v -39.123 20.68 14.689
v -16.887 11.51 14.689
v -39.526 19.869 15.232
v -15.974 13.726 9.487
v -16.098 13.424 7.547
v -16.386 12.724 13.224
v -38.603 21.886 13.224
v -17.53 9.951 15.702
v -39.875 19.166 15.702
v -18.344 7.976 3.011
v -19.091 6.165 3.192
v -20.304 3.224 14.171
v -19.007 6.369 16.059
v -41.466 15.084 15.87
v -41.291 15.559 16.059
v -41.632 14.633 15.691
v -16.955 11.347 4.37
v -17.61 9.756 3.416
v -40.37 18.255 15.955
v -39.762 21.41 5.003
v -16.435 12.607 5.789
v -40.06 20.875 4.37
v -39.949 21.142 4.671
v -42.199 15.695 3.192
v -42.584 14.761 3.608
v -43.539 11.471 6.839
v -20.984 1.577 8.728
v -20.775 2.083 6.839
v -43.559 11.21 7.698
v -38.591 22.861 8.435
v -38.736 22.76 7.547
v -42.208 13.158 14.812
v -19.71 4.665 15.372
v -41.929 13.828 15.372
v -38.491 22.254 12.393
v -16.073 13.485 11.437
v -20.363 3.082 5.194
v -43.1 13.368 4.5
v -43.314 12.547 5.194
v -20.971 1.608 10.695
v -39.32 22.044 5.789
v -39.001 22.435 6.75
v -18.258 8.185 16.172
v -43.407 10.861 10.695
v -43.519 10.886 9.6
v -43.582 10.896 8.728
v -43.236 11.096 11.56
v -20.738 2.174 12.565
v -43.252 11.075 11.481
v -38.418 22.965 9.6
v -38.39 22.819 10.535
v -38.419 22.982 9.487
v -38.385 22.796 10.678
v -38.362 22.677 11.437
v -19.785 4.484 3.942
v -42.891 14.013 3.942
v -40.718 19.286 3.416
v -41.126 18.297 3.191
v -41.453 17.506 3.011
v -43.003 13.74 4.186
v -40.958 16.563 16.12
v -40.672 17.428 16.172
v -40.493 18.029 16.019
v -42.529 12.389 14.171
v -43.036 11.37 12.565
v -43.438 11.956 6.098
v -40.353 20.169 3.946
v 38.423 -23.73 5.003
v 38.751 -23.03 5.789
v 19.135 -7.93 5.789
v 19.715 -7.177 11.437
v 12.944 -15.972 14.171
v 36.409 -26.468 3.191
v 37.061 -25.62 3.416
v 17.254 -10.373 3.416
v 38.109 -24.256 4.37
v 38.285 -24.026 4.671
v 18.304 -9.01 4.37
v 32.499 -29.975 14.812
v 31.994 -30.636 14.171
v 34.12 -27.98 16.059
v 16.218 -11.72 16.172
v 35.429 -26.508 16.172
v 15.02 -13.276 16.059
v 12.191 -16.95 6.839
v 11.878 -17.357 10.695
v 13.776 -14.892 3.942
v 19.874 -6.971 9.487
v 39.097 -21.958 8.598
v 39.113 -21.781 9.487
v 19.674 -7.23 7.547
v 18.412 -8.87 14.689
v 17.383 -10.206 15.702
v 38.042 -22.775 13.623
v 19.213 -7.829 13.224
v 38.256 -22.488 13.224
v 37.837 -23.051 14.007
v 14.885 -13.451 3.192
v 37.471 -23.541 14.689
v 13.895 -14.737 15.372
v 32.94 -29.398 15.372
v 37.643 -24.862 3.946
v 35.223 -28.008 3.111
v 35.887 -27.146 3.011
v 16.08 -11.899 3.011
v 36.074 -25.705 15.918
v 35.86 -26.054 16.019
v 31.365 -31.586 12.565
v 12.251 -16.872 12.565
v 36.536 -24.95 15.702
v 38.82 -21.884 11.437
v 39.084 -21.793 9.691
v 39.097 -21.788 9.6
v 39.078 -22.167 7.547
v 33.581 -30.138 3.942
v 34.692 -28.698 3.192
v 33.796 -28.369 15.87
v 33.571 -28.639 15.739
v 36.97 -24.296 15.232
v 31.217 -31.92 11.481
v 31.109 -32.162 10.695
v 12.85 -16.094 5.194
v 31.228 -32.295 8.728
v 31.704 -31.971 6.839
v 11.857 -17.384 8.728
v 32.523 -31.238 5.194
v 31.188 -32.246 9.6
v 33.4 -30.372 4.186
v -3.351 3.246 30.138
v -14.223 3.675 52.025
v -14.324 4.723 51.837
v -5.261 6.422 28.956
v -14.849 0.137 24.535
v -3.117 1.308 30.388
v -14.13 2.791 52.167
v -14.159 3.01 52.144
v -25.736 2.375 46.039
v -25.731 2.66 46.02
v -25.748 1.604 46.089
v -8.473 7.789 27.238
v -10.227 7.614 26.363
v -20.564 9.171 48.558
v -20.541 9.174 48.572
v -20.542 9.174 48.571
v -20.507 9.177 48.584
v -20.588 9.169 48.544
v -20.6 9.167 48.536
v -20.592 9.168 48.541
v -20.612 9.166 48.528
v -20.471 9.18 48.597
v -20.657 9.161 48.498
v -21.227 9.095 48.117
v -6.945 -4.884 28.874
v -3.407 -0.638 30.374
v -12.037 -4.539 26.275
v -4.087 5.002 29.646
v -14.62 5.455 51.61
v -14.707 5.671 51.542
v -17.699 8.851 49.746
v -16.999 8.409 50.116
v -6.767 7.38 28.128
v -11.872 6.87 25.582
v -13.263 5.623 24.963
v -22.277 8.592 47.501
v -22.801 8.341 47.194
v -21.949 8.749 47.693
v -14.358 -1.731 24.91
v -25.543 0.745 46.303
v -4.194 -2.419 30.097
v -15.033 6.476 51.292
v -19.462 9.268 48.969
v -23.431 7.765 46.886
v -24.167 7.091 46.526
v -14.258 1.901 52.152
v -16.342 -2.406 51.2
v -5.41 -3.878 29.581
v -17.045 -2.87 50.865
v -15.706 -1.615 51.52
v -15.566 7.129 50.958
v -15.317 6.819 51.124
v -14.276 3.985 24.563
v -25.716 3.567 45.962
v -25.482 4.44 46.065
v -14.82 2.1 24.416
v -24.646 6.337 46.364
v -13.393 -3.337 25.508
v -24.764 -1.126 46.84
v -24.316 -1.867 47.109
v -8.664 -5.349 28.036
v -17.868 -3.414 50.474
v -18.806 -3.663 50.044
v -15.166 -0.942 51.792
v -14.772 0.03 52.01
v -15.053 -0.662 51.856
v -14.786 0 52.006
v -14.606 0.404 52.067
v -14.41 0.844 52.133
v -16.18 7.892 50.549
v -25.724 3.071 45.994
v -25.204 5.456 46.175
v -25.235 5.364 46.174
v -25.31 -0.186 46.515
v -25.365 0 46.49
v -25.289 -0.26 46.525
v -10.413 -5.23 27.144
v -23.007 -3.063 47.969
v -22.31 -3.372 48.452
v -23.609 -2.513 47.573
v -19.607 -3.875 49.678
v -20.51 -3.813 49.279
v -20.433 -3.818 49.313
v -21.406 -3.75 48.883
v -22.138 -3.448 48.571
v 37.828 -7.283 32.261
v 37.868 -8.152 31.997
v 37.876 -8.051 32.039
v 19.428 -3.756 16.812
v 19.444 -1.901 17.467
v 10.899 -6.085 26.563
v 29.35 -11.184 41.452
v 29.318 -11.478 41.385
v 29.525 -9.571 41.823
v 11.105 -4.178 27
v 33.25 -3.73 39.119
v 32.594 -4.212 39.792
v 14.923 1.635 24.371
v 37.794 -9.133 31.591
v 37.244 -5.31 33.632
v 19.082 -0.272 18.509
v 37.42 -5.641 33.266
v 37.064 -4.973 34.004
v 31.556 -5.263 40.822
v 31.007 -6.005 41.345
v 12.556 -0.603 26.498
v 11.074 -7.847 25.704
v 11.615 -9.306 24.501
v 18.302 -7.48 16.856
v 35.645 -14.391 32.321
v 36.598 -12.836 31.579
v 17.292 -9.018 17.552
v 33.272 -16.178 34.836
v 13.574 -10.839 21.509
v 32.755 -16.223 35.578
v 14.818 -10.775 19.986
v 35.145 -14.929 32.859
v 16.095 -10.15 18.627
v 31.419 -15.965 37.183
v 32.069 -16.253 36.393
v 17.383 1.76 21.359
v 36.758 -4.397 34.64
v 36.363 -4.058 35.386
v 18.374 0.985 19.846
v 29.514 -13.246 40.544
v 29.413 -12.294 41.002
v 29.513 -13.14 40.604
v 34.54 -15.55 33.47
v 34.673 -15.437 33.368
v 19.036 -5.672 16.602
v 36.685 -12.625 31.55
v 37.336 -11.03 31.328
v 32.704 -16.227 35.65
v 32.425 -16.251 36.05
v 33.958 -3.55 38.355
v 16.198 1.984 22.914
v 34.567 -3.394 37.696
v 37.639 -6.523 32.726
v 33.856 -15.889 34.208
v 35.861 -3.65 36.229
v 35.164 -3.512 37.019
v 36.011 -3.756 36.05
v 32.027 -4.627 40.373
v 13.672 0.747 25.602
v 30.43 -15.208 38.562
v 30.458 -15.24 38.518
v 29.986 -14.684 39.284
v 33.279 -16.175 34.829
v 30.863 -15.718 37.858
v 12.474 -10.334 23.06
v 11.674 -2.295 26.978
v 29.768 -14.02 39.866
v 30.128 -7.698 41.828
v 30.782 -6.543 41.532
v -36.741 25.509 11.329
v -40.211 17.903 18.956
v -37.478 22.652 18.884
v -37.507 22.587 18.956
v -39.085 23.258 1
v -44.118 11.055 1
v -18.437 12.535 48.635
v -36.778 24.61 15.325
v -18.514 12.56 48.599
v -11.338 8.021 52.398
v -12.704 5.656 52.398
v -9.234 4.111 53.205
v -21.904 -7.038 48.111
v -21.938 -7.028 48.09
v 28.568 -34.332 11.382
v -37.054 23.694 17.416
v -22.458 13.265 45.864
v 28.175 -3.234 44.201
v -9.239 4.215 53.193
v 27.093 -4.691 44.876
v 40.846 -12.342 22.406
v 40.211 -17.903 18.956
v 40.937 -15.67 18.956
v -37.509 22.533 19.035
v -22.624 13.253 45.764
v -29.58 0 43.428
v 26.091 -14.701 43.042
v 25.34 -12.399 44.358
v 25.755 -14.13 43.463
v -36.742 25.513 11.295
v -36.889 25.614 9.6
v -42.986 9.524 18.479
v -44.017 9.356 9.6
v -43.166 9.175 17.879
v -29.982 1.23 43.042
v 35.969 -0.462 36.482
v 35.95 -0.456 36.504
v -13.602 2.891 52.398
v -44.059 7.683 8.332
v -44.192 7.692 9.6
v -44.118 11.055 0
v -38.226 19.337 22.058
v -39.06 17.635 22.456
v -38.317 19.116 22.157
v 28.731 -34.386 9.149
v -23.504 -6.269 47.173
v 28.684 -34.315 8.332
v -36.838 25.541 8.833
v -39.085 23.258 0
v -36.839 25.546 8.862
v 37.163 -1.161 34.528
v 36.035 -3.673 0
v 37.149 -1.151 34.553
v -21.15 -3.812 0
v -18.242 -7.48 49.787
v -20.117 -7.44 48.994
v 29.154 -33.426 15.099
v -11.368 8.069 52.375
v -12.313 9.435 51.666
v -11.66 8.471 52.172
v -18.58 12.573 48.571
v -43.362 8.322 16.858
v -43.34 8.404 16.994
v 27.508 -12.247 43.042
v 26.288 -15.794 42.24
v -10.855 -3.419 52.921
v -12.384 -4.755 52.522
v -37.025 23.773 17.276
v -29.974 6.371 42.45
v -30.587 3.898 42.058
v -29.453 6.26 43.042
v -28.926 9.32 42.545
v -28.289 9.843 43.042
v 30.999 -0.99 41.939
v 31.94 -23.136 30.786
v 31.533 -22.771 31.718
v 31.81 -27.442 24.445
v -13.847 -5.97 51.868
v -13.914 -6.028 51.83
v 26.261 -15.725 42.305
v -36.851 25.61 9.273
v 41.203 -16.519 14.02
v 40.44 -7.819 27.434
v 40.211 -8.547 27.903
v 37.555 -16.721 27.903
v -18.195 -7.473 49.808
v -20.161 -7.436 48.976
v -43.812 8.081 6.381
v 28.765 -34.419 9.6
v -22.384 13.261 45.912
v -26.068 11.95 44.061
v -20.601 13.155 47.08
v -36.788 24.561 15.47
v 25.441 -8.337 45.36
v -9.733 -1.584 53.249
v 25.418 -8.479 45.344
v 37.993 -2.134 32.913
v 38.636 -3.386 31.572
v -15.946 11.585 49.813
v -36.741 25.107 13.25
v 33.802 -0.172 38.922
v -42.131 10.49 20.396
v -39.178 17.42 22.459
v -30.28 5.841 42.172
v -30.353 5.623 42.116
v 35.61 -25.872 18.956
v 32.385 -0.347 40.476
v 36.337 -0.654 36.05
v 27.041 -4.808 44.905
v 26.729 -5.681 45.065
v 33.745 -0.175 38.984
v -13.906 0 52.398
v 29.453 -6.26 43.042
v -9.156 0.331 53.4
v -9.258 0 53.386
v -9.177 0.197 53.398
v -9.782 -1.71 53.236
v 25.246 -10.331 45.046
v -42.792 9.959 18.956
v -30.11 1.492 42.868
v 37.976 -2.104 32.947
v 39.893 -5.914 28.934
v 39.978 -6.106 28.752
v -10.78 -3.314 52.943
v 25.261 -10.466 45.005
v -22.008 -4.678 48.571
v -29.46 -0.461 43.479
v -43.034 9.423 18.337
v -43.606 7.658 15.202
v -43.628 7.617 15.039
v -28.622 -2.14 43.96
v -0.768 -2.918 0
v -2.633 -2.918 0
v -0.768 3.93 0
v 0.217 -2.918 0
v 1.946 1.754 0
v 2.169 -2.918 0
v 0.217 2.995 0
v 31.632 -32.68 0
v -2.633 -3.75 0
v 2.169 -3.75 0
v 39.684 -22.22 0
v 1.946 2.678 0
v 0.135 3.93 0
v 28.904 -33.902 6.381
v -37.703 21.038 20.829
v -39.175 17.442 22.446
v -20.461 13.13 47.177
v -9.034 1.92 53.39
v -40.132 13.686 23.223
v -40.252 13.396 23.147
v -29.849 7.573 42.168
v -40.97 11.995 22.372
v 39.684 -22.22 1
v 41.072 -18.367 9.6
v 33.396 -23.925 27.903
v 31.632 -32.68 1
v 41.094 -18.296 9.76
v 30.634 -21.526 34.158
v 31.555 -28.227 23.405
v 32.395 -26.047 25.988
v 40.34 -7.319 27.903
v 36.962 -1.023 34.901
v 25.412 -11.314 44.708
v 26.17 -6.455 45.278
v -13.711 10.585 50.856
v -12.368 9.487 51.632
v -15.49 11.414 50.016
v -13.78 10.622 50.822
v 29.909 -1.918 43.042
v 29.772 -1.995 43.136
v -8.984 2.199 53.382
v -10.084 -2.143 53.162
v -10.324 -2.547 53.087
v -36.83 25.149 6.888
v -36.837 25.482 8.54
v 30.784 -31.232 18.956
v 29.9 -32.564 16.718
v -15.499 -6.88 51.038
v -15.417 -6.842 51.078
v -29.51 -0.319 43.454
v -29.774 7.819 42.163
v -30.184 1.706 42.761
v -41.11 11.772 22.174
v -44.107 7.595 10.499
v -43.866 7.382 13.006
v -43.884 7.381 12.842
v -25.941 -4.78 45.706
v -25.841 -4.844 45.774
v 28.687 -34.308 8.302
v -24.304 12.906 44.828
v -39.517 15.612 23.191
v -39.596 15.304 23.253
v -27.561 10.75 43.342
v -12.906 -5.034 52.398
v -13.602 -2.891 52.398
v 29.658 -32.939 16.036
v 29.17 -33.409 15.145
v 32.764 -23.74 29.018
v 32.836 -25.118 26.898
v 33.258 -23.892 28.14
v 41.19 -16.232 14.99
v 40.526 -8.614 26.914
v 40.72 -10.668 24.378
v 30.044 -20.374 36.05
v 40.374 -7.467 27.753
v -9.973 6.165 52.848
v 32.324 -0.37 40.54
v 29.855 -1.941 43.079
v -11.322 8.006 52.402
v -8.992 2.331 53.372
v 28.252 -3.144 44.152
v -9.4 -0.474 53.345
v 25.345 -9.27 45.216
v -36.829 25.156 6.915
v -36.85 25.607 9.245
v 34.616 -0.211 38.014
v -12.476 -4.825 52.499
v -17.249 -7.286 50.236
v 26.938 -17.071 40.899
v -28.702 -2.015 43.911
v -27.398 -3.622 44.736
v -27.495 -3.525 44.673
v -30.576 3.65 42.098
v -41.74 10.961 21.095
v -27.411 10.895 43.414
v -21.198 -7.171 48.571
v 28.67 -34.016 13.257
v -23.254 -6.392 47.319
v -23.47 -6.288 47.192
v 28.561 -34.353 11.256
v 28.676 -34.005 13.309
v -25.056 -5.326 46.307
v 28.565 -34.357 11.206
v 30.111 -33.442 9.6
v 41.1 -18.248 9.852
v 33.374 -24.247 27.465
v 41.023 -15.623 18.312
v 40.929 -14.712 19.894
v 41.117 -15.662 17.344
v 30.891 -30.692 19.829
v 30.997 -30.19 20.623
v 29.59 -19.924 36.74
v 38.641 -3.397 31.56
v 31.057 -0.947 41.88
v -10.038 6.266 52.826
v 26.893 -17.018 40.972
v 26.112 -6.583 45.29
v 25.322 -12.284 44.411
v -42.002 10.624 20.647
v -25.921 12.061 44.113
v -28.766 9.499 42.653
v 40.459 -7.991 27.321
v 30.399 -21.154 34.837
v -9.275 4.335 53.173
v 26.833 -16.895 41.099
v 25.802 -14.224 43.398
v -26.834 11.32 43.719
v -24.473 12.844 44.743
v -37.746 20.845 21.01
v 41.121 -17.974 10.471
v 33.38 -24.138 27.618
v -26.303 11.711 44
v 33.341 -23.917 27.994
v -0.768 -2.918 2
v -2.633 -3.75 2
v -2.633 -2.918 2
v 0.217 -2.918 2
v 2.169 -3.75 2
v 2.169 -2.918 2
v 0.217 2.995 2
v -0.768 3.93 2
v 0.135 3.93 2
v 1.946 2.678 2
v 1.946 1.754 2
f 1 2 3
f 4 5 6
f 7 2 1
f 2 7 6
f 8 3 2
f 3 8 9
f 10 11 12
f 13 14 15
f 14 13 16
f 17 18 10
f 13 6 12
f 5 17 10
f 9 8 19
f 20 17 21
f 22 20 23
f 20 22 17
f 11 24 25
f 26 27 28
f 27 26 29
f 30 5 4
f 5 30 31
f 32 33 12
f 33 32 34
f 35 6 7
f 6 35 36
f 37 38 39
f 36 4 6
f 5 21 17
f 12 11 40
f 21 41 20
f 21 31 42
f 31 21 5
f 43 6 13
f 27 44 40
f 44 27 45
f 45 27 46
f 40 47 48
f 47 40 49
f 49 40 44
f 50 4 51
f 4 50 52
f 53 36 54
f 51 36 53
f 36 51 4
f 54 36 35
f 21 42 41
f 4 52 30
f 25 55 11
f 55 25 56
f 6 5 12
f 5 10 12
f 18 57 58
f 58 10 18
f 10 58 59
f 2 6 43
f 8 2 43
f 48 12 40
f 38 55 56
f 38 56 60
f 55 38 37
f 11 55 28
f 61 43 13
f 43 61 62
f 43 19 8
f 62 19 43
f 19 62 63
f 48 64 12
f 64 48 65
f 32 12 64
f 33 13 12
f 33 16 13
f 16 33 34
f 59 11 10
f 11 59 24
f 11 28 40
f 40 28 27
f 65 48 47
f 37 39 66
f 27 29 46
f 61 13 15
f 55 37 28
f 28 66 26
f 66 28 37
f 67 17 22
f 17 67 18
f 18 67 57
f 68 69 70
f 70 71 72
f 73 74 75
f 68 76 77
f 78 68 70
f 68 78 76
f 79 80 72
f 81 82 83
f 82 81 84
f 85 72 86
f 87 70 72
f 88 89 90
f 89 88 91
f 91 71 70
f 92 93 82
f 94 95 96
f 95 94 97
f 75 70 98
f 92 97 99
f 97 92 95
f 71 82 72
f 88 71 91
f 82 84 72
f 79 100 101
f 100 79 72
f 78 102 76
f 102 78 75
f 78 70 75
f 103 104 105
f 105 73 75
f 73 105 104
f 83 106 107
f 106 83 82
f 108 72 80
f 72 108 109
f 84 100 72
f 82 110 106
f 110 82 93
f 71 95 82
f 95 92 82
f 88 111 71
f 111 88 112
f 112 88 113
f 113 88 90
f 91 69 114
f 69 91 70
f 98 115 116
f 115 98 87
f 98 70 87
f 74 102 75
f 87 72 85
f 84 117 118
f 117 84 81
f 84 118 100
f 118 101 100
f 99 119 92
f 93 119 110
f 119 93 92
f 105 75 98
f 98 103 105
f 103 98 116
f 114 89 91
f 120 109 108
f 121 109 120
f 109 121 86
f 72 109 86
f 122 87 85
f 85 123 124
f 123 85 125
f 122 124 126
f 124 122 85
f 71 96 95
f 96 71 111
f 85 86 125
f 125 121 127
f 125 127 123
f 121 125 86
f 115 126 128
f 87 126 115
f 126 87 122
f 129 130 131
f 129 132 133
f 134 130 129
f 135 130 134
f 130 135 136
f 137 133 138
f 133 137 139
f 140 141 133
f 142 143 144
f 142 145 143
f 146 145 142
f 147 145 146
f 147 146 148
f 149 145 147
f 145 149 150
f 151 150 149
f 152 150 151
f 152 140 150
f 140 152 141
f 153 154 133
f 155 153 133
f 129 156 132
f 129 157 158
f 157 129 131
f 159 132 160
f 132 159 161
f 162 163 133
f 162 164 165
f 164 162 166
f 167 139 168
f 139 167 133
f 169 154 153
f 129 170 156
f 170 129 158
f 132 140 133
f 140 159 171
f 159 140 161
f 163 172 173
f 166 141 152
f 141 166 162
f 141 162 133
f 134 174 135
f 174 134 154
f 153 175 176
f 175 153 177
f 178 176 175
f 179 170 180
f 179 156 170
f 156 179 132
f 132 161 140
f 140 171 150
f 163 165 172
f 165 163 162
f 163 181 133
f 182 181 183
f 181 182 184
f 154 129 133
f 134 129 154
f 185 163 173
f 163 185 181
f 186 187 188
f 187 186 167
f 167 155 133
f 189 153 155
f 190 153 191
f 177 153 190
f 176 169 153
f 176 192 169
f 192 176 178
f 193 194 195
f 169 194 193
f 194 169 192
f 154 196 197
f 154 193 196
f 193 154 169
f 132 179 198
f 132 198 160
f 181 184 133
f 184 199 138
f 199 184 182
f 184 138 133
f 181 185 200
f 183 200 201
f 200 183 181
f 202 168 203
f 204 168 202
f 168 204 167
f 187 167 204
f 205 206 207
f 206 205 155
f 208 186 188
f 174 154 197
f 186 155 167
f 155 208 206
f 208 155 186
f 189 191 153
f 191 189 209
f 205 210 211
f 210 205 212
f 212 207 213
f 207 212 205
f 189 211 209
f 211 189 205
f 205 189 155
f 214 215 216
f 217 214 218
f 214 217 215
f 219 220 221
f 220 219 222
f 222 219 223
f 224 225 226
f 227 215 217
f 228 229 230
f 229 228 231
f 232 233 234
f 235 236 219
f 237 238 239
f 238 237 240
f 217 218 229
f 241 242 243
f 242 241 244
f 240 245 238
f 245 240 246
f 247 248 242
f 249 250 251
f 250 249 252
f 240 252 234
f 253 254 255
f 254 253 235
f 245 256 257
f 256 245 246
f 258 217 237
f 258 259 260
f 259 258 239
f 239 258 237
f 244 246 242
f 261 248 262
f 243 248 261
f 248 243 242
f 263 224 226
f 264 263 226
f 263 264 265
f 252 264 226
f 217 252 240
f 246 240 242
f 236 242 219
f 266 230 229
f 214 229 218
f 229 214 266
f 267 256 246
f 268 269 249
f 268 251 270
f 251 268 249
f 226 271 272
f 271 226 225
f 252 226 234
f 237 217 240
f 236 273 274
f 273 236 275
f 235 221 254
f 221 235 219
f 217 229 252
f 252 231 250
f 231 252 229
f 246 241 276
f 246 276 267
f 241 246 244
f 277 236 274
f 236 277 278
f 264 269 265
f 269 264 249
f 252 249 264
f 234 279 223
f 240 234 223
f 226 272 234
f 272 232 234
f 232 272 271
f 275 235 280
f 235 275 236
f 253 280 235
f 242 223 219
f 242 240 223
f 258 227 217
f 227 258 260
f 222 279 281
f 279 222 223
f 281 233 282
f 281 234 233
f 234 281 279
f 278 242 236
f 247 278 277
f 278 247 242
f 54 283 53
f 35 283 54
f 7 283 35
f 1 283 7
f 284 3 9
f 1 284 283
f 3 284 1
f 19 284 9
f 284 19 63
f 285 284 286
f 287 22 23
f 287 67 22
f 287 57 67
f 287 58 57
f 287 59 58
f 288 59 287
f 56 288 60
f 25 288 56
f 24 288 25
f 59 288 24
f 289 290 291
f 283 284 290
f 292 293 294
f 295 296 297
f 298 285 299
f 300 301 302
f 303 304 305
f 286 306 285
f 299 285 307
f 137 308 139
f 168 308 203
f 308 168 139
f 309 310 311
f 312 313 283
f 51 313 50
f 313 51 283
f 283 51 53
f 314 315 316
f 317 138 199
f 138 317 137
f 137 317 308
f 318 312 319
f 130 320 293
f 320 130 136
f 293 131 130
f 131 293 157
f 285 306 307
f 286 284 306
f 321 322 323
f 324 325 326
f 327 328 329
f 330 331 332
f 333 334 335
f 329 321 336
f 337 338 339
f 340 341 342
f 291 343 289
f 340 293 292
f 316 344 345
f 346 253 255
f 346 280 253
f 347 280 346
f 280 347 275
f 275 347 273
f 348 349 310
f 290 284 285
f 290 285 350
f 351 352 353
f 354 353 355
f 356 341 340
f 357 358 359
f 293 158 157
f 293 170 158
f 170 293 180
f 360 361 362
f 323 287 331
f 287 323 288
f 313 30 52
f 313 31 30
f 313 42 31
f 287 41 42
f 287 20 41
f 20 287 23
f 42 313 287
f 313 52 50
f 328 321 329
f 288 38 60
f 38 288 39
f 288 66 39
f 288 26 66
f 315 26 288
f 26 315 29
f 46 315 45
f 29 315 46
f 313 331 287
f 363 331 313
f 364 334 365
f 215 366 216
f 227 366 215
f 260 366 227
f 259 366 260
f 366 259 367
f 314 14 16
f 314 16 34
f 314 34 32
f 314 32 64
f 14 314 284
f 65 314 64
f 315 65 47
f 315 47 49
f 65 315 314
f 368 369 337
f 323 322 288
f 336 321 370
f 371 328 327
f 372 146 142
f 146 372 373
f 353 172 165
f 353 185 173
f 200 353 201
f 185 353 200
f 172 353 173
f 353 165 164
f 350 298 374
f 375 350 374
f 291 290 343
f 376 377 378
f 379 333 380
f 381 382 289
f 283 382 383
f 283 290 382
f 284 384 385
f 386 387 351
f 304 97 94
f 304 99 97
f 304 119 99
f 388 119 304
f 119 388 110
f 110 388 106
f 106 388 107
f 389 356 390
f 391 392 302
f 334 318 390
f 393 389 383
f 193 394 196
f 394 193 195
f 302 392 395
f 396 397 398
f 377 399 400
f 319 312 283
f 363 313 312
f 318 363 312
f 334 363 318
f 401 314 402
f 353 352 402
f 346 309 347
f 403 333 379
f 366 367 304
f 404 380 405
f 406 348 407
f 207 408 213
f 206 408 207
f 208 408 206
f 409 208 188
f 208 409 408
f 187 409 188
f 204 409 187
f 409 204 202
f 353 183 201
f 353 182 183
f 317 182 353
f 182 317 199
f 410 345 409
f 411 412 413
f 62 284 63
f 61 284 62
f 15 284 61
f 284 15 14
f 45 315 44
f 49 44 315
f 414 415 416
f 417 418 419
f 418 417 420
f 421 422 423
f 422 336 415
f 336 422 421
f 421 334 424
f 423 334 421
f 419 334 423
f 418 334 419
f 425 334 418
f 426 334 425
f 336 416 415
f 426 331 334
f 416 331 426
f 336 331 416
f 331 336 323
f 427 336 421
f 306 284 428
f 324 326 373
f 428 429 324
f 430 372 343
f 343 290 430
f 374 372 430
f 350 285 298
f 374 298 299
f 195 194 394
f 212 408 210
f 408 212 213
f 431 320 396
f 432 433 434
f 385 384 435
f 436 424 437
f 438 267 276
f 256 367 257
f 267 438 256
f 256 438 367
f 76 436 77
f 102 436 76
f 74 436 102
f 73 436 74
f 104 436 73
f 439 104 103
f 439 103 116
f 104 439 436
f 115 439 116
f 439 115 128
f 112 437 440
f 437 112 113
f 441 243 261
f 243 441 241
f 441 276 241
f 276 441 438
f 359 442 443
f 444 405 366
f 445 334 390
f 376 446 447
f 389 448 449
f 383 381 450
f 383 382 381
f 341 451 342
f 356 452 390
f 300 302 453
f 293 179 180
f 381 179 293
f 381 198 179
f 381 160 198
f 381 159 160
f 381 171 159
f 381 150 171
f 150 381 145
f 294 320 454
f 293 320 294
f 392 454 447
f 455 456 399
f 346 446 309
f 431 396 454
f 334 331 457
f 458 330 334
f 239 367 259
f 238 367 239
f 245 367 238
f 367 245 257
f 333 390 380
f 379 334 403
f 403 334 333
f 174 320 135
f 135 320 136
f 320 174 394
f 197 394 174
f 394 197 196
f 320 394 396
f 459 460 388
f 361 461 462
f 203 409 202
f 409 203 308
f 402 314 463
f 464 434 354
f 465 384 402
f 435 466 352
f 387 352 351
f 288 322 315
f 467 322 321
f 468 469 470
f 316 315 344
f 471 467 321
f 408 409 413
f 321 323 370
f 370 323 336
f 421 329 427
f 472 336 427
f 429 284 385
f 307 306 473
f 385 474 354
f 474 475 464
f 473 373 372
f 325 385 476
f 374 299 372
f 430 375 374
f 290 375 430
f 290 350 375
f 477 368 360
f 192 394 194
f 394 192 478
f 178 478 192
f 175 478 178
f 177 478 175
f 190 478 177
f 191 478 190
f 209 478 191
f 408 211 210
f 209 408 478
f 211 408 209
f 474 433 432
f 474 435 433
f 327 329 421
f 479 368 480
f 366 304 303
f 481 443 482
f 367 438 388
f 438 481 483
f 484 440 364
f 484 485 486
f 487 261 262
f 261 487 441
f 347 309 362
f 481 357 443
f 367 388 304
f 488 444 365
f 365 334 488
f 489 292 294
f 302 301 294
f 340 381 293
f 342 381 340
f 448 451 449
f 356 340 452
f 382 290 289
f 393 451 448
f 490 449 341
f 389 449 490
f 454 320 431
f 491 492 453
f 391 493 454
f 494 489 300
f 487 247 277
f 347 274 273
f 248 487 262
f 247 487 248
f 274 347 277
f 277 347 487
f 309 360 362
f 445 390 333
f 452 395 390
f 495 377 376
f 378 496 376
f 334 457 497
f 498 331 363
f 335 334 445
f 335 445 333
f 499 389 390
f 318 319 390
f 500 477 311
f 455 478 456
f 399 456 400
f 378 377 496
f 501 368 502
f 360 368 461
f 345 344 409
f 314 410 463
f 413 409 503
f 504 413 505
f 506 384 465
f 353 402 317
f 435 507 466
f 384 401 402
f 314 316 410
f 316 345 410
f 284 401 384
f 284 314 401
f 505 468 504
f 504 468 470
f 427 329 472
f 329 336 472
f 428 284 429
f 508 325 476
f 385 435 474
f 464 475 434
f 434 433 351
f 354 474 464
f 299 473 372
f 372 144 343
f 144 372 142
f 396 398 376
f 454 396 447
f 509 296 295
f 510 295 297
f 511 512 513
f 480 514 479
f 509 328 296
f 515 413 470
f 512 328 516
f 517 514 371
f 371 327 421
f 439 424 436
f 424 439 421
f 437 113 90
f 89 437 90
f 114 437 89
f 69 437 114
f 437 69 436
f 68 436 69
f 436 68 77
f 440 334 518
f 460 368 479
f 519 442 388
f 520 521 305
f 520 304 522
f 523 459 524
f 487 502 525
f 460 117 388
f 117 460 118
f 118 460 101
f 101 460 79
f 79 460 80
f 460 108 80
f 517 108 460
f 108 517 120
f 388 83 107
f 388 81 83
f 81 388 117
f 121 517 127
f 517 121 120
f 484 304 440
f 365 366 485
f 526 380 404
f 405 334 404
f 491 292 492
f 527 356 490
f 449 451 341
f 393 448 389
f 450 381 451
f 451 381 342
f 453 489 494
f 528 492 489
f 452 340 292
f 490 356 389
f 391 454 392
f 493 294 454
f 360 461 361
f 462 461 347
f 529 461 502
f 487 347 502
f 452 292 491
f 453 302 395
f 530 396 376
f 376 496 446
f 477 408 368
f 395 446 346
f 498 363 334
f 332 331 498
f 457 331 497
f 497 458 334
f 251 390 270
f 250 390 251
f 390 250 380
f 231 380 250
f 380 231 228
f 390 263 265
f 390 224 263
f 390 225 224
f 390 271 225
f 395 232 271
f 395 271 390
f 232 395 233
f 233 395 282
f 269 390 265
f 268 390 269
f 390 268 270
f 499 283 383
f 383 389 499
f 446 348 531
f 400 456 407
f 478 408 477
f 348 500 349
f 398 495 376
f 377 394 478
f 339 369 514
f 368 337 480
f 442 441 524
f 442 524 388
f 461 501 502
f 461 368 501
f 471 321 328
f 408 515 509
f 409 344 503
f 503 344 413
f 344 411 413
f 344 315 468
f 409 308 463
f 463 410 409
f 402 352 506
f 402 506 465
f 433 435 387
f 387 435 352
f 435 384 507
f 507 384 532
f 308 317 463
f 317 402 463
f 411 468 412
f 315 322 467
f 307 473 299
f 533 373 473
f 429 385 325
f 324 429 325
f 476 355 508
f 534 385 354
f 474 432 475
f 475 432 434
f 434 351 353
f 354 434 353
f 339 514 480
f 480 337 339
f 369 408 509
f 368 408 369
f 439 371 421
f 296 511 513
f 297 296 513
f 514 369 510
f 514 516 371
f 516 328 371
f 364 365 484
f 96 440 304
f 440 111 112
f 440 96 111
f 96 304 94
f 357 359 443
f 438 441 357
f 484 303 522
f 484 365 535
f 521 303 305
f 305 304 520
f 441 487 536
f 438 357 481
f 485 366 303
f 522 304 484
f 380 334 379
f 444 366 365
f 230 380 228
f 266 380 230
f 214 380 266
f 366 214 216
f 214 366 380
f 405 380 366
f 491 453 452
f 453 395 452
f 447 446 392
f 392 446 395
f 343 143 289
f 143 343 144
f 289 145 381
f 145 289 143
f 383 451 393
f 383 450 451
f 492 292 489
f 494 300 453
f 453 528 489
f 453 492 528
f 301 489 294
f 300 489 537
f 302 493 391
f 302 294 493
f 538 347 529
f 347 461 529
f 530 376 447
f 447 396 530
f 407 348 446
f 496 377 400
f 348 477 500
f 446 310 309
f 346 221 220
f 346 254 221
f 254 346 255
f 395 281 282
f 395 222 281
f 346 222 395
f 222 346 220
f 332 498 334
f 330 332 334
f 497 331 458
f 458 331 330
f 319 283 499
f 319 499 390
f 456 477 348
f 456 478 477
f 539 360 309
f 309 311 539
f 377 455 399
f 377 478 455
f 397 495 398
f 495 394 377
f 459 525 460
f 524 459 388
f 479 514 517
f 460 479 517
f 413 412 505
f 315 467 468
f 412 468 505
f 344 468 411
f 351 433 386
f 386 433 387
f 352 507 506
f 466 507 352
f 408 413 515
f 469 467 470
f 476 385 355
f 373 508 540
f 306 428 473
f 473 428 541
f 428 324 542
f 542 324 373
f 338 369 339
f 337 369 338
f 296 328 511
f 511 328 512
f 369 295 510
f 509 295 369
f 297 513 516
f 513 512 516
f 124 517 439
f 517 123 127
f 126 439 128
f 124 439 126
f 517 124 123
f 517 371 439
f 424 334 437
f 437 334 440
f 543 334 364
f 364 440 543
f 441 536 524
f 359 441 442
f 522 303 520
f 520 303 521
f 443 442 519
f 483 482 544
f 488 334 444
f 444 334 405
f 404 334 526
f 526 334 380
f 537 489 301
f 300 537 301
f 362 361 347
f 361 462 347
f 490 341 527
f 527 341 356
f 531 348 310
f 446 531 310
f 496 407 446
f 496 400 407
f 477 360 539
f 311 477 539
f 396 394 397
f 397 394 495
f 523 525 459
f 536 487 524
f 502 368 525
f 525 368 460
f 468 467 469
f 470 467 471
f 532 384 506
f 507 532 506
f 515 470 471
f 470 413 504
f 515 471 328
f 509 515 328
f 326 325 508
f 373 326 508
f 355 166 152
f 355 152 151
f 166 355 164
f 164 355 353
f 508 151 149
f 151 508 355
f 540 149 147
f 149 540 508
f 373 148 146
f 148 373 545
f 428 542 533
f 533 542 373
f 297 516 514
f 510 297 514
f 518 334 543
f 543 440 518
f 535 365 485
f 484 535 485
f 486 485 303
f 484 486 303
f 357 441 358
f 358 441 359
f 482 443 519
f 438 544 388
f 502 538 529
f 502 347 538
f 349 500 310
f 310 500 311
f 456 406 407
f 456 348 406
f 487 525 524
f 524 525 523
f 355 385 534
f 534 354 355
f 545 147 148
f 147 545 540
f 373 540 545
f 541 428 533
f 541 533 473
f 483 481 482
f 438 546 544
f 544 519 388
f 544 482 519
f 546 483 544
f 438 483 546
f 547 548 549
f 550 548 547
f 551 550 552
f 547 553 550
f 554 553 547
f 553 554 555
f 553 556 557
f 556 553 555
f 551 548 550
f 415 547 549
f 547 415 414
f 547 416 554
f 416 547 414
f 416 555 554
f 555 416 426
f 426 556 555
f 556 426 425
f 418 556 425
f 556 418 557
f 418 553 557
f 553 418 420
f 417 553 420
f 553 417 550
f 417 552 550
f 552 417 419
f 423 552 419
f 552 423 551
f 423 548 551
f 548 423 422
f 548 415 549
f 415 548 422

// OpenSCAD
difference() {
	difference() {
		difference() {
			hull() {
				union() {
					union() {
						rotate(a = 157.5890894690, v = [0, 0, 1]) {
							translate(v = [0, -6.6000000000, 0]) {
								cube(size = [45.0000000000, 13.2000000000, 1]);
							}
						}
						rotate(a = -37.5890894690, v = [0, 0, 1]) {
							translate(v = [0, -6.6000000000, 0]) {
								cube(size = [45.0000000000, 13.2000000000, 1]);
							}
						}
						rotate(a = 172.3322554907, v = [0, 0, 1]) {
							translate(v = [0, -6.6000000000, 0]) {
								cube(size = [20.4525262825, 13.2000000000, 1]);
							}
						}
						rotate(a = -16.3184846220, v = [0, 0, 1]) {
							translate(v = [0, -6.6000000000, 0]) {
								cube(size = [35.6153289547, 13.2000000000, 1]);
							}
						}
					}
					translate(v = [0, 0, 9.6000024435]) {
						intersection() {
							hull() {
								rotate(a = 90.0000342358, v = [-0.3812464258, -0.9244734516, 0.0000013057]) {
									cylinder(h = 45, r = 9.6000000000);
								}
								rotate(a = 89.9999885039, v = [0.6099942813, 0.7924058157, -0.0000014024]) {
									cylinder(h = 45, r = 9.6000000000);
								}
								rotate(a = 27.0328546714, v = [-0.0606423386, -0.4504375452, 0.0000005111]) {
									cylinder(h = 45, r = 9.6000000000);
								}
								rotate(a = 52.3213490325, v = [0.2223798319, 0.7595672672, -0.0000009819]) {
									cylinder(h = 45, r = 9.6000000000);
								}
							}
							sphere(r = 45);
						}
					}
				}
			}
			translate(v = [0, 0, 9.6000024435]) {
				rotate(a = 90.0000342358, v = [-0.3812464258, -0.9244734516, 0.0000013057]) {
					translate(v = [0, 0, 20]) {
						cylinder(h = 45, r = 6.6000000000);
					}
				}
				rotate(a = 89.9999885039, v = [0.6099942813, 0.7924058157, -0.0000014024]) {
					translate(v = [0, 0, 20]) {
						cylinder(h = 45, r = 6.6000000000);
					}
				}
				rotate(a = 27.0328546714, v = [-0.0606423386, -0.4504375452, 0.0000005111]) {
					translate(v = [0, 0, 20]) {
						cylinder(h = 45, r = 6.6000000000);
					}
				}
				rotate(a = 52.3213490325, v = [0.2223798319, 0.7595672672, -0.0000009819]) {
					translate(v = [0, 0, 20]) {
						cylinder(h = 45, r = 6.6000000000);
					}
				}
			}
		}
		translate(v = [-100, -100, -100]) {
			cube(size = [200, 200, 100]);
		}
	}
	translate(v = [0, 0, 2]) {
		rotate(a = 180, v = [0, 1, 0]) {
			linear_extrude(height = 3) {
				text(halign = "center", size = 8, text = "1", valign = "center");
			}
		}
	}
}
